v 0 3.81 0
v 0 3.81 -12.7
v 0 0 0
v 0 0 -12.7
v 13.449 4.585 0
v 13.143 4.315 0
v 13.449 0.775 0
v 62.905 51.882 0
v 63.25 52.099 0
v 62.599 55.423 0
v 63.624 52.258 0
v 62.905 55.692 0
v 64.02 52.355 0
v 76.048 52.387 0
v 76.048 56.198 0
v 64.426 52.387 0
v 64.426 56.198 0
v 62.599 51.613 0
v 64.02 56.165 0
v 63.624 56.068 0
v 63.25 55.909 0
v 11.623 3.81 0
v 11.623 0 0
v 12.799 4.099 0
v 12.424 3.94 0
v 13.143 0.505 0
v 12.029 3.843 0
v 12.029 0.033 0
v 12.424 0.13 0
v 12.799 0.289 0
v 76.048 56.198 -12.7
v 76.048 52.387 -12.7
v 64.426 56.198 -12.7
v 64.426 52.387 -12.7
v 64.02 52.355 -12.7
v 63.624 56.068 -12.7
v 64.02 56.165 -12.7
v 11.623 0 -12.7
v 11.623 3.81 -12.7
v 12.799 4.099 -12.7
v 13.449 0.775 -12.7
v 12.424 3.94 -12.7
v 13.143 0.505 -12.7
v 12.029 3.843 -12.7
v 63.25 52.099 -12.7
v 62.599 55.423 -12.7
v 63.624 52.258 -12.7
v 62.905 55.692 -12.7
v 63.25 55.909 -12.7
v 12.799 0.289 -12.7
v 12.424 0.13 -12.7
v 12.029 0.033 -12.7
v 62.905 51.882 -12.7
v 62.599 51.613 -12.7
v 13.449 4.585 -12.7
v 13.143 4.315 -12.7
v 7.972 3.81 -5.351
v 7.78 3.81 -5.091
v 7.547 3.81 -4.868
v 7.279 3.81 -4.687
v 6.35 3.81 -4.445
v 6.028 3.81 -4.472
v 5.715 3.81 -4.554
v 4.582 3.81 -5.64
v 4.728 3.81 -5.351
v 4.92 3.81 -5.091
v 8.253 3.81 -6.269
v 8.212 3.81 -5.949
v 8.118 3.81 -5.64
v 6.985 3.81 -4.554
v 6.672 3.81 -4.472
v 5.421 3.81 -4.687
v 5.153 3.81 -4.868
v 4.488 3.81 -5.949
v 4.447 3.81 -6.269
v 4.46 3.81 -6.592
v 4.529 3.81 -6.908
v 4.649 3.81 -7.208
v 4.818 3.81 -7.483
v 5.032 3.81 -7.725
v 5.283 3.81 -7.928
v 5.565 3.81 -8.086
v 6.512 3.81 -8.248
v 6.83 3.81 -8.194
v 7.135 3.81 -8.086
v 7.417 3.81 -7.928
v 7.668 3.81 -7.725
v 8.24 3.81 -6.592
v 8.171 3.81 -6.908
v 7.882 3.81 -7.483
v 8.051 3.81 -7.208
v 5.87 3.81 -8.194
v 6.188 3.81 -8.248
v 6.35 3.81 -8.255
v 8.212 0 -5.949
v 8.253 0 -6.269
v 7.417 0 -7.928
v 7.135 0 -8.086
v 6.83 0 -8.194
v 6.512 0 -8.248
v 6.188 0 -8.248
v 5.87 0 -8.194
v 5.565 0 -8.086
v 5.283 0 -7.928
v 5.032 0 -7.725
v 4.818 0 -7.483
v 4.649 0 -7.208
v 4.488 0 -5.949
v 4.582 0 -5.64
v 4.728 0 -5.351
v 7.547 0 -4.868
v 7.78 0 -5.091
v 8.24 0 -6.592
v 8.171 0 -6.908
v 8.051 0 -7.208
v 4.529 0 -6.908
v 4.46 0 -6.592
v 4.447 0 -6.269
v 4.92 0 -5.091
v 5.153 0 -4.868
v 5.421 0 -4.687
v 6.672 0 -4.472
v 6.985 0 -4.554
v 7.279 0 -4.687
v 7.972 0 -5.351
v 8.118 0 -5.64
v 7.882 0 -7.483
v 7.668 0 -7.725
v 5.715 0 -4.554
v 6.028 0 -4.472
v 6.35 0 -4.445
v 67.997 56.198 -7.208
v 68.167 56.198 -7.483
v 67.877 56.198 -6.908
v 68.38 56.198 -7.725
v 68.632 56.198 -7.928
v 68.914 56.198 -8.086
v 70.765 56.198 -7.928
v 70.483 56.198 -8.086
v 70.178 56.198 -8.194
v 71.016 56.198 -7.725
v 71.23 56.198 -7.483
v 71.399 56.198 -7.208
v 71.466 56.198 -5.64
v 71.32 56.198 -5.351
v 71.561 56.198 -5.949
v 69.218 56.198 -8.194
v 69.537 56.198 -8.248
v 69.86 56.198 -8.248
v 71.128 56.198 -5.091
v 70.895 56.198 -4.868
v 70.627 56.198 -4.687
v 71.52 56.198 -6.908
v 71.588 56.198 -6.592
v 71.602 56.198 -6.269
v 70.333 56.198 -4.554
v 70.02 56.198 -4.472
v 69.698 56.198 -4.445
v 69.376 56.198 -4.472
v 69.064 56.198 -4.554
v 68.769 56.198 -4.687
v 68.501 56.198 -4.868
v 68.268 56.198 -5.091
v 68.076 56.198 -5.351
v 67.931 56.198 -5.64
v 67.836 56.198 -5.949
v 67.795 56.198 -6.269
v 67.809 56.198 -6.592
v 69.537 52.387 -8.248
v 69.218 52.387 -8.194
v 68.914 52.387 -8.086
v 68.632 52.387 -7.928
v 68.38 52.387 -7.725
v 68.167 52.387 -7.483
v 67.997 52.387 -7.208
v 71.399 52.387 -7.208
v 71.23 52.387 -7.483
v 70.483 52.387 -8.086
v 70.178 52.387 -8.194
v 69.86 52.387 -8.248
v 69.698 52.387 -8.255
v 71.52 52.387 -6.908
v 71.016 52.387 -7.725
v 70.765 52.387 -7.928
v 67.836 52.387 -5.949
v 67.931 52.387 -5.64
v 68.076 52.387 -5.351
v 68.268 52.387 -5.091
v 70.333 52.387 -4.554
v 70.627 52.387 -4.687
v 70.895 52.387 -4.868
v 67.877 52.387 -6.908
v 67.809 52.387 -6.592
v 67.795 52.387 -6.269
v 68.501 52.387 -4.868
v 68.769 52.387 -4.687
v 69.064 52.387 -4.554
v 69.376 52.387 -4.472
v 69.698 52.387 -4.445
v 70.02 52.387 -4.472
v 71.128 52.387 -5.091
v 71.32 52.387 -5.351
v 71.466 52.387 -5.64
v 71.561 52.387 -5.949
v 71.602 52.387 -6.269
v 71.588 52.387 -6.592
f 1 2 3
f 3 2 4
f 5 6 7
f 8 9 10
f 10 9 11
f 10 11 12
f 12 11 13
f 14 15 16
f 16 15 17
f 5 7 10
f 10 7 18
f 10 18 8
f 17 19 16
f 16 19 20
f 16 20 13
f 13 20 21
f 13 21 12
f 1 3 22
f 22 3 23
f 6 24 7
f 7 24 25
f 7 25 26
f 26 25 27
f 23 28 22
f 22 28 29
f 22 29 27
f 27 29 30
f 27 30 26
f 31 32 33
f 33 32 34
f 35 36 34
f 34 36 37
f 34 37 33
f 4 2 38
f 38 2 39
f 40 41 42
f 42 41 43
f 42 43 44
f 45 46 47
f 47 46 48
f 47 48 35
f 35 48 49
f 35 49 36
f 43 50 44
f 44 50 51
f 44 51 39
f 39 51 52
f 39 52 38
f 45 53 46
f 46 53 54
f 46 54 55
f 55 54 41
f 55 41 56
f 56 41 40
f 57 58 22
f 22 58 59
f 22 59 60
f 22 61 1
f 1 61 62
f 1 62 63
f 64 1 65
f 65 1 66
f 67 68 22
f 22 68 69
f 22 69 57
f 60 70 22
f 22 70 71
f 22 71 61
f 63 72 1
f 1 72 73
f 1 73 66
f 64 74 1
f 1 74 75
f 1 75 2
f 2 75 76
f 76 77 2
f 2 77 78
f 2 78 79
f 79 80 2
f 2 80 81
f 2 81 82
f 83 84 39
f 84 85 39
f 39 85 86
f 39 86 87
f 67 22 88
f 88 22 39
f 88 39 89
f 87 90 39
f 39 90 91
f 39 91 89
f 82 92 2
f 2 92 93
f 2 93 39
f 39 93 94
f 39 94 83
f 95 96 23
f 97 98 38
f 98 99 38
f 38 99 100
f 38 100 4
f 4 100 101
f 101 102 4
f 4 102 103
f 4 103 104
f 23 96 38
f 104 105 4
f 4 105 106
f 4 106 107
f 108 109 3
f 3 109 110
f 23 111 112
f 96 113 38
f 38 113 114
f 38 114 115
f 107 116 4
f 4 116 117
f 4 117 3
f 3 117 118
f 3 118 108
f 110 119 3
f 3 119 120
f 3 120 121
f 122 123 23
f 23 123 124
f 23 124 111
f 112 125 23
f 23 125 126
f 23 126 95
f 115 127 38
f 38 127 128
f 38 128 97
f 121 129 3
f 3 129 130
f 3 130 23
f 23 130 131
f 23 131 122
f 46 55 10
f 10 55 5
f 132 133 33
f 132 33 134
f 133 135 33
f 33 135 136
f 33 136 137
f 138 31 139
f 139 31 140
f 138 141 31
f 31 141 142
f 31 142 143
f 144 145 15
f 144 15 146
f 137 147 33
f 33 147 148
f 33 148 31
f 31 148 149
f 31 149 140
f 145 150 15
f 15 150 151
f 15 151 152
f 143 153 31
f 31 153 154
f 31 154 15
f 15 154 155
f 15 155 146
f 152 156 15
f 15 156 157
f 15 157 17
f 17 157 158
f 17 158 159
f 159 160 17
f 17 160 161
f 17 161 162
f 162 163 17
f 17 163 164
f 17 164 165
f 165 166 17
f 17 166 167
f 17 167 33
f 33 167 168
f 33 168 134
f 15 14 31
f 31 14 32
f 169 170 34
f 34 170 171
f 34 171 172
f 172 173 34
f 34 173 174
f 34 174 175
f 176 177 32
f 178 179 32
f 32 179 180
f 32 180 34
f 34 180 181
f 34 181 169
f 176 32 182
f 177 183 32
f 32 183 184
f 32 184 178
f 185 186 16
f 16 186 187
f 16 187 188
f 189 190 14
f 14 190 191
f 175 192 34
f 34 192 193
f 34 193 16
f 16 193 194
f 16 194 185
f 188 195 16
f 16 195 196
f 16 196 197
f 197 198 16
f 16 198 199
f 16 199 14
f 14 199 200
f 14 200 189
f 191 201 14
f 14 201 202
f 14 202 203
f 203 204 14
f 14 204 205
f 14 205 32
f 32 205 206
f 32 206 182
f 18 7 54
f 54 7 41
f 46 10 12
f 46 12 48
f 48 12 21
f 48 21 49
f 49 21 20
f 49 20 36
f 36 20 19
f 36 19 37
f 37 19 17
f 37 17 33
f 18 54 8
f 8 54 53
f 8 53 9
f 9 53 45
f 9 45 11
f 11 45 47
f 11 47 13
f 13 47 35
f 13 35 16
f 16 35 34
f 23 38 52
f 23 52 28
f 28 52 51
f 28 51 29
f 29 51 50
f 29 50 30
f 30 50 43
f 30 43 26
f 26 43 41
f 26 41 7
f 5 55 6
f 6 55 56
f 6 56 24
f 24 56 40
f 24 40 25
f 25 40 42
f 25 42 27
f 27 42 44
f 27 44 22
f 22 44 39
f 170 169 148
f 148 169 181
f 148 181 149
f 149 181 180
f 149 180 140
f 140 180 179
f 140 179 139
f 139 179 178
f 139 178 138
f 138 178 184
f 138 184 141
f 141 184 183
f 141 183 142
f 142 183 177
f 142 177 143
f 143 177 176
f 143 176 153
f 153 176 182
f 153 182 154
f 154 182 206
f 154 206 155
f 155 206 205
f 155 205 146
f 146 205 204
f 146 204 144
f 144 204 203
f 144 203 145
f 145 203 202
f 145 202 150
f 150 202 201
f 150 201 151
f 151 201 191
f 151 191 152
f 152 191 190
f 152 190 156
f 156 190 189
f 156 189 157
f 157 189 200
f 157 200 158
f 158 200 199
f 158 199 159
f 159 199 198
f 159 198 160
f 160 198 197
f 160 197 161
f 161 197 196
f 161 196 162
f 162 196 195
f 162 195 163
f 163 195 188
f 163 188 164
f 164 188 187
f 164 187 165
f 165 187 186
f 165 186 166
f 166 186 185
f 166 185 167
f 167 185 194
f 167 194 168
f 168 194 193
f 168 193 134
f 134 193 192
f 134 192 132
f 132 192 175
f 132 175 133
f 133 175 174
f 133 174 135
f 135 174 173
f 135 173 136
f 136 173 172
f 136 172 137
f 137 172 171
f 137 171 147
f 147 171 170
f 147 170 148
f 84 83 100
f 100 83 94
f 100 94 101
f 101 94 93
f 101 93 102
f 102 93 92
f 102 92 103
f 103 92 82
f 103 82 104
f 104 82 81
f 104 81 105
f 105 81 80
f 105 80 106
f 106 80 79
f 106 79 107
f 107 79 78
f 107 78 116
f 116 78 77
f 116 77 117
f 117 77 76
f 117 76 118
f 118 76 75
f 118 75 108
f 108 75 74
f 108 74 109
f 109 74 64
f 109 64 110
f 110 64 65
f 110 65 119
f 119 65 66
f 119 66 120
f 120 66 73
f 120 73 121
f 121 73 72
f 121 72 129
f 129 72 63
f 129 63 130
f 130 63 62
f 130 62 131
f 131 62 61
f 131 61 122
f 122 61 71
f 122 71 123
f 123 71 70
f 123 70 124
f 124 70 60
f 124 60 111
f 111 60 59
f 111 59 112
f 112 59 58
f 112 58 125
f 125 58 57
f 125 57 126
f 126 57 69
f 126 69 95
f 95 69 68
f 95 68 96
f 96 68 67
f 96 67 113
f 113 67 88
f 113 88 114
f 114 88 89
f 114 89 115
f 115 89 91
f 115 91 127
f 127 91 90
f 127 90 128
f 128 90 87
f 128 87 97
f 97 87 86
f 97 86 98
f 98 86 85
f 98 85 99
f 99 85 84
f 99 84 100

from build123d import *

# Parameters (mm, degrees)
SKETCH1_W               = 12.7
SKETCH1_H               = 12.7
BOSS_EXTRUDE1_DEPTH     = 3.81
BOSS_EXTRUDE2_DEPTH     = 12.7
FILLET1_R               = 2.54
SKETCH6_R               = 1.905
CUT_EXTRUDE1_DEPTH      = 53.3875
CUT_EXTRUDE1_DEPTH_BACK = 4.81


with BuildPart() as part:
    # Sketch1 → Boss-Extrude1 (new body)
    with BuildSketch(Plane(origin=(0, 0, 0), x_dir=(1, 0, 0), z_dir=(0, 1, 0))):
        with Locations((6.35, 6.35)):
            Rectangle(SKETCH1_W, SKETCH1_H)
    extrude(amount=BOSS_EXTRUDE1_DEPTH)

    # Sketch2 → Boss-Extrude2 (add)
    with BuildSketch(Plane.XY):
        Polygon((12.7, 0), (63.348255925, 52.3875), (76.048255925, 52.3875), (76.048255925, 56.1975), (63.348255925, 56.1975), (12.7, 3.81), align=None)
    extrude(amount=-BOSS_EXTRUDE2_DEPTH)

    # Fillet1
    fillet1_edges = [part.edges().sort_by_distance(p)[0] for p in [
        (12.7, 3.81, -6.35),
        (63.348255925, 56.1975, -6.35),
        (63.348255925, 52.3875, -6.35),
        (12.7, 0, -6.35),
    ]]
    fillet(fillet1_edges, radius=FILLET1_R)

    # Sketch6 → Cut-Extrude1 (cut, two sides)
    with BuildSketch(Plane(origin=(0, 3.81, 0), x_dir=(1, 0, 0), z_dir=(0, 1, 0))) as cut_extrude1_sk:
        with Locations((6.35, 6.35)):
            Circle(SKETCH6_R)
        with Locations((69.698255925, 6.35)):
            Circle(SKETCH6_R)
    extrude(amount=CUT_EXTRUDE1_DEPTH, mode=Mode.SUBTRACT)
    extrude(cut_extrude1_sk.sketch, amount=-CUT_EXTRUDE1_DEPTH_BACK, mode=Mode.SUBTRACT)


solid = part.part
